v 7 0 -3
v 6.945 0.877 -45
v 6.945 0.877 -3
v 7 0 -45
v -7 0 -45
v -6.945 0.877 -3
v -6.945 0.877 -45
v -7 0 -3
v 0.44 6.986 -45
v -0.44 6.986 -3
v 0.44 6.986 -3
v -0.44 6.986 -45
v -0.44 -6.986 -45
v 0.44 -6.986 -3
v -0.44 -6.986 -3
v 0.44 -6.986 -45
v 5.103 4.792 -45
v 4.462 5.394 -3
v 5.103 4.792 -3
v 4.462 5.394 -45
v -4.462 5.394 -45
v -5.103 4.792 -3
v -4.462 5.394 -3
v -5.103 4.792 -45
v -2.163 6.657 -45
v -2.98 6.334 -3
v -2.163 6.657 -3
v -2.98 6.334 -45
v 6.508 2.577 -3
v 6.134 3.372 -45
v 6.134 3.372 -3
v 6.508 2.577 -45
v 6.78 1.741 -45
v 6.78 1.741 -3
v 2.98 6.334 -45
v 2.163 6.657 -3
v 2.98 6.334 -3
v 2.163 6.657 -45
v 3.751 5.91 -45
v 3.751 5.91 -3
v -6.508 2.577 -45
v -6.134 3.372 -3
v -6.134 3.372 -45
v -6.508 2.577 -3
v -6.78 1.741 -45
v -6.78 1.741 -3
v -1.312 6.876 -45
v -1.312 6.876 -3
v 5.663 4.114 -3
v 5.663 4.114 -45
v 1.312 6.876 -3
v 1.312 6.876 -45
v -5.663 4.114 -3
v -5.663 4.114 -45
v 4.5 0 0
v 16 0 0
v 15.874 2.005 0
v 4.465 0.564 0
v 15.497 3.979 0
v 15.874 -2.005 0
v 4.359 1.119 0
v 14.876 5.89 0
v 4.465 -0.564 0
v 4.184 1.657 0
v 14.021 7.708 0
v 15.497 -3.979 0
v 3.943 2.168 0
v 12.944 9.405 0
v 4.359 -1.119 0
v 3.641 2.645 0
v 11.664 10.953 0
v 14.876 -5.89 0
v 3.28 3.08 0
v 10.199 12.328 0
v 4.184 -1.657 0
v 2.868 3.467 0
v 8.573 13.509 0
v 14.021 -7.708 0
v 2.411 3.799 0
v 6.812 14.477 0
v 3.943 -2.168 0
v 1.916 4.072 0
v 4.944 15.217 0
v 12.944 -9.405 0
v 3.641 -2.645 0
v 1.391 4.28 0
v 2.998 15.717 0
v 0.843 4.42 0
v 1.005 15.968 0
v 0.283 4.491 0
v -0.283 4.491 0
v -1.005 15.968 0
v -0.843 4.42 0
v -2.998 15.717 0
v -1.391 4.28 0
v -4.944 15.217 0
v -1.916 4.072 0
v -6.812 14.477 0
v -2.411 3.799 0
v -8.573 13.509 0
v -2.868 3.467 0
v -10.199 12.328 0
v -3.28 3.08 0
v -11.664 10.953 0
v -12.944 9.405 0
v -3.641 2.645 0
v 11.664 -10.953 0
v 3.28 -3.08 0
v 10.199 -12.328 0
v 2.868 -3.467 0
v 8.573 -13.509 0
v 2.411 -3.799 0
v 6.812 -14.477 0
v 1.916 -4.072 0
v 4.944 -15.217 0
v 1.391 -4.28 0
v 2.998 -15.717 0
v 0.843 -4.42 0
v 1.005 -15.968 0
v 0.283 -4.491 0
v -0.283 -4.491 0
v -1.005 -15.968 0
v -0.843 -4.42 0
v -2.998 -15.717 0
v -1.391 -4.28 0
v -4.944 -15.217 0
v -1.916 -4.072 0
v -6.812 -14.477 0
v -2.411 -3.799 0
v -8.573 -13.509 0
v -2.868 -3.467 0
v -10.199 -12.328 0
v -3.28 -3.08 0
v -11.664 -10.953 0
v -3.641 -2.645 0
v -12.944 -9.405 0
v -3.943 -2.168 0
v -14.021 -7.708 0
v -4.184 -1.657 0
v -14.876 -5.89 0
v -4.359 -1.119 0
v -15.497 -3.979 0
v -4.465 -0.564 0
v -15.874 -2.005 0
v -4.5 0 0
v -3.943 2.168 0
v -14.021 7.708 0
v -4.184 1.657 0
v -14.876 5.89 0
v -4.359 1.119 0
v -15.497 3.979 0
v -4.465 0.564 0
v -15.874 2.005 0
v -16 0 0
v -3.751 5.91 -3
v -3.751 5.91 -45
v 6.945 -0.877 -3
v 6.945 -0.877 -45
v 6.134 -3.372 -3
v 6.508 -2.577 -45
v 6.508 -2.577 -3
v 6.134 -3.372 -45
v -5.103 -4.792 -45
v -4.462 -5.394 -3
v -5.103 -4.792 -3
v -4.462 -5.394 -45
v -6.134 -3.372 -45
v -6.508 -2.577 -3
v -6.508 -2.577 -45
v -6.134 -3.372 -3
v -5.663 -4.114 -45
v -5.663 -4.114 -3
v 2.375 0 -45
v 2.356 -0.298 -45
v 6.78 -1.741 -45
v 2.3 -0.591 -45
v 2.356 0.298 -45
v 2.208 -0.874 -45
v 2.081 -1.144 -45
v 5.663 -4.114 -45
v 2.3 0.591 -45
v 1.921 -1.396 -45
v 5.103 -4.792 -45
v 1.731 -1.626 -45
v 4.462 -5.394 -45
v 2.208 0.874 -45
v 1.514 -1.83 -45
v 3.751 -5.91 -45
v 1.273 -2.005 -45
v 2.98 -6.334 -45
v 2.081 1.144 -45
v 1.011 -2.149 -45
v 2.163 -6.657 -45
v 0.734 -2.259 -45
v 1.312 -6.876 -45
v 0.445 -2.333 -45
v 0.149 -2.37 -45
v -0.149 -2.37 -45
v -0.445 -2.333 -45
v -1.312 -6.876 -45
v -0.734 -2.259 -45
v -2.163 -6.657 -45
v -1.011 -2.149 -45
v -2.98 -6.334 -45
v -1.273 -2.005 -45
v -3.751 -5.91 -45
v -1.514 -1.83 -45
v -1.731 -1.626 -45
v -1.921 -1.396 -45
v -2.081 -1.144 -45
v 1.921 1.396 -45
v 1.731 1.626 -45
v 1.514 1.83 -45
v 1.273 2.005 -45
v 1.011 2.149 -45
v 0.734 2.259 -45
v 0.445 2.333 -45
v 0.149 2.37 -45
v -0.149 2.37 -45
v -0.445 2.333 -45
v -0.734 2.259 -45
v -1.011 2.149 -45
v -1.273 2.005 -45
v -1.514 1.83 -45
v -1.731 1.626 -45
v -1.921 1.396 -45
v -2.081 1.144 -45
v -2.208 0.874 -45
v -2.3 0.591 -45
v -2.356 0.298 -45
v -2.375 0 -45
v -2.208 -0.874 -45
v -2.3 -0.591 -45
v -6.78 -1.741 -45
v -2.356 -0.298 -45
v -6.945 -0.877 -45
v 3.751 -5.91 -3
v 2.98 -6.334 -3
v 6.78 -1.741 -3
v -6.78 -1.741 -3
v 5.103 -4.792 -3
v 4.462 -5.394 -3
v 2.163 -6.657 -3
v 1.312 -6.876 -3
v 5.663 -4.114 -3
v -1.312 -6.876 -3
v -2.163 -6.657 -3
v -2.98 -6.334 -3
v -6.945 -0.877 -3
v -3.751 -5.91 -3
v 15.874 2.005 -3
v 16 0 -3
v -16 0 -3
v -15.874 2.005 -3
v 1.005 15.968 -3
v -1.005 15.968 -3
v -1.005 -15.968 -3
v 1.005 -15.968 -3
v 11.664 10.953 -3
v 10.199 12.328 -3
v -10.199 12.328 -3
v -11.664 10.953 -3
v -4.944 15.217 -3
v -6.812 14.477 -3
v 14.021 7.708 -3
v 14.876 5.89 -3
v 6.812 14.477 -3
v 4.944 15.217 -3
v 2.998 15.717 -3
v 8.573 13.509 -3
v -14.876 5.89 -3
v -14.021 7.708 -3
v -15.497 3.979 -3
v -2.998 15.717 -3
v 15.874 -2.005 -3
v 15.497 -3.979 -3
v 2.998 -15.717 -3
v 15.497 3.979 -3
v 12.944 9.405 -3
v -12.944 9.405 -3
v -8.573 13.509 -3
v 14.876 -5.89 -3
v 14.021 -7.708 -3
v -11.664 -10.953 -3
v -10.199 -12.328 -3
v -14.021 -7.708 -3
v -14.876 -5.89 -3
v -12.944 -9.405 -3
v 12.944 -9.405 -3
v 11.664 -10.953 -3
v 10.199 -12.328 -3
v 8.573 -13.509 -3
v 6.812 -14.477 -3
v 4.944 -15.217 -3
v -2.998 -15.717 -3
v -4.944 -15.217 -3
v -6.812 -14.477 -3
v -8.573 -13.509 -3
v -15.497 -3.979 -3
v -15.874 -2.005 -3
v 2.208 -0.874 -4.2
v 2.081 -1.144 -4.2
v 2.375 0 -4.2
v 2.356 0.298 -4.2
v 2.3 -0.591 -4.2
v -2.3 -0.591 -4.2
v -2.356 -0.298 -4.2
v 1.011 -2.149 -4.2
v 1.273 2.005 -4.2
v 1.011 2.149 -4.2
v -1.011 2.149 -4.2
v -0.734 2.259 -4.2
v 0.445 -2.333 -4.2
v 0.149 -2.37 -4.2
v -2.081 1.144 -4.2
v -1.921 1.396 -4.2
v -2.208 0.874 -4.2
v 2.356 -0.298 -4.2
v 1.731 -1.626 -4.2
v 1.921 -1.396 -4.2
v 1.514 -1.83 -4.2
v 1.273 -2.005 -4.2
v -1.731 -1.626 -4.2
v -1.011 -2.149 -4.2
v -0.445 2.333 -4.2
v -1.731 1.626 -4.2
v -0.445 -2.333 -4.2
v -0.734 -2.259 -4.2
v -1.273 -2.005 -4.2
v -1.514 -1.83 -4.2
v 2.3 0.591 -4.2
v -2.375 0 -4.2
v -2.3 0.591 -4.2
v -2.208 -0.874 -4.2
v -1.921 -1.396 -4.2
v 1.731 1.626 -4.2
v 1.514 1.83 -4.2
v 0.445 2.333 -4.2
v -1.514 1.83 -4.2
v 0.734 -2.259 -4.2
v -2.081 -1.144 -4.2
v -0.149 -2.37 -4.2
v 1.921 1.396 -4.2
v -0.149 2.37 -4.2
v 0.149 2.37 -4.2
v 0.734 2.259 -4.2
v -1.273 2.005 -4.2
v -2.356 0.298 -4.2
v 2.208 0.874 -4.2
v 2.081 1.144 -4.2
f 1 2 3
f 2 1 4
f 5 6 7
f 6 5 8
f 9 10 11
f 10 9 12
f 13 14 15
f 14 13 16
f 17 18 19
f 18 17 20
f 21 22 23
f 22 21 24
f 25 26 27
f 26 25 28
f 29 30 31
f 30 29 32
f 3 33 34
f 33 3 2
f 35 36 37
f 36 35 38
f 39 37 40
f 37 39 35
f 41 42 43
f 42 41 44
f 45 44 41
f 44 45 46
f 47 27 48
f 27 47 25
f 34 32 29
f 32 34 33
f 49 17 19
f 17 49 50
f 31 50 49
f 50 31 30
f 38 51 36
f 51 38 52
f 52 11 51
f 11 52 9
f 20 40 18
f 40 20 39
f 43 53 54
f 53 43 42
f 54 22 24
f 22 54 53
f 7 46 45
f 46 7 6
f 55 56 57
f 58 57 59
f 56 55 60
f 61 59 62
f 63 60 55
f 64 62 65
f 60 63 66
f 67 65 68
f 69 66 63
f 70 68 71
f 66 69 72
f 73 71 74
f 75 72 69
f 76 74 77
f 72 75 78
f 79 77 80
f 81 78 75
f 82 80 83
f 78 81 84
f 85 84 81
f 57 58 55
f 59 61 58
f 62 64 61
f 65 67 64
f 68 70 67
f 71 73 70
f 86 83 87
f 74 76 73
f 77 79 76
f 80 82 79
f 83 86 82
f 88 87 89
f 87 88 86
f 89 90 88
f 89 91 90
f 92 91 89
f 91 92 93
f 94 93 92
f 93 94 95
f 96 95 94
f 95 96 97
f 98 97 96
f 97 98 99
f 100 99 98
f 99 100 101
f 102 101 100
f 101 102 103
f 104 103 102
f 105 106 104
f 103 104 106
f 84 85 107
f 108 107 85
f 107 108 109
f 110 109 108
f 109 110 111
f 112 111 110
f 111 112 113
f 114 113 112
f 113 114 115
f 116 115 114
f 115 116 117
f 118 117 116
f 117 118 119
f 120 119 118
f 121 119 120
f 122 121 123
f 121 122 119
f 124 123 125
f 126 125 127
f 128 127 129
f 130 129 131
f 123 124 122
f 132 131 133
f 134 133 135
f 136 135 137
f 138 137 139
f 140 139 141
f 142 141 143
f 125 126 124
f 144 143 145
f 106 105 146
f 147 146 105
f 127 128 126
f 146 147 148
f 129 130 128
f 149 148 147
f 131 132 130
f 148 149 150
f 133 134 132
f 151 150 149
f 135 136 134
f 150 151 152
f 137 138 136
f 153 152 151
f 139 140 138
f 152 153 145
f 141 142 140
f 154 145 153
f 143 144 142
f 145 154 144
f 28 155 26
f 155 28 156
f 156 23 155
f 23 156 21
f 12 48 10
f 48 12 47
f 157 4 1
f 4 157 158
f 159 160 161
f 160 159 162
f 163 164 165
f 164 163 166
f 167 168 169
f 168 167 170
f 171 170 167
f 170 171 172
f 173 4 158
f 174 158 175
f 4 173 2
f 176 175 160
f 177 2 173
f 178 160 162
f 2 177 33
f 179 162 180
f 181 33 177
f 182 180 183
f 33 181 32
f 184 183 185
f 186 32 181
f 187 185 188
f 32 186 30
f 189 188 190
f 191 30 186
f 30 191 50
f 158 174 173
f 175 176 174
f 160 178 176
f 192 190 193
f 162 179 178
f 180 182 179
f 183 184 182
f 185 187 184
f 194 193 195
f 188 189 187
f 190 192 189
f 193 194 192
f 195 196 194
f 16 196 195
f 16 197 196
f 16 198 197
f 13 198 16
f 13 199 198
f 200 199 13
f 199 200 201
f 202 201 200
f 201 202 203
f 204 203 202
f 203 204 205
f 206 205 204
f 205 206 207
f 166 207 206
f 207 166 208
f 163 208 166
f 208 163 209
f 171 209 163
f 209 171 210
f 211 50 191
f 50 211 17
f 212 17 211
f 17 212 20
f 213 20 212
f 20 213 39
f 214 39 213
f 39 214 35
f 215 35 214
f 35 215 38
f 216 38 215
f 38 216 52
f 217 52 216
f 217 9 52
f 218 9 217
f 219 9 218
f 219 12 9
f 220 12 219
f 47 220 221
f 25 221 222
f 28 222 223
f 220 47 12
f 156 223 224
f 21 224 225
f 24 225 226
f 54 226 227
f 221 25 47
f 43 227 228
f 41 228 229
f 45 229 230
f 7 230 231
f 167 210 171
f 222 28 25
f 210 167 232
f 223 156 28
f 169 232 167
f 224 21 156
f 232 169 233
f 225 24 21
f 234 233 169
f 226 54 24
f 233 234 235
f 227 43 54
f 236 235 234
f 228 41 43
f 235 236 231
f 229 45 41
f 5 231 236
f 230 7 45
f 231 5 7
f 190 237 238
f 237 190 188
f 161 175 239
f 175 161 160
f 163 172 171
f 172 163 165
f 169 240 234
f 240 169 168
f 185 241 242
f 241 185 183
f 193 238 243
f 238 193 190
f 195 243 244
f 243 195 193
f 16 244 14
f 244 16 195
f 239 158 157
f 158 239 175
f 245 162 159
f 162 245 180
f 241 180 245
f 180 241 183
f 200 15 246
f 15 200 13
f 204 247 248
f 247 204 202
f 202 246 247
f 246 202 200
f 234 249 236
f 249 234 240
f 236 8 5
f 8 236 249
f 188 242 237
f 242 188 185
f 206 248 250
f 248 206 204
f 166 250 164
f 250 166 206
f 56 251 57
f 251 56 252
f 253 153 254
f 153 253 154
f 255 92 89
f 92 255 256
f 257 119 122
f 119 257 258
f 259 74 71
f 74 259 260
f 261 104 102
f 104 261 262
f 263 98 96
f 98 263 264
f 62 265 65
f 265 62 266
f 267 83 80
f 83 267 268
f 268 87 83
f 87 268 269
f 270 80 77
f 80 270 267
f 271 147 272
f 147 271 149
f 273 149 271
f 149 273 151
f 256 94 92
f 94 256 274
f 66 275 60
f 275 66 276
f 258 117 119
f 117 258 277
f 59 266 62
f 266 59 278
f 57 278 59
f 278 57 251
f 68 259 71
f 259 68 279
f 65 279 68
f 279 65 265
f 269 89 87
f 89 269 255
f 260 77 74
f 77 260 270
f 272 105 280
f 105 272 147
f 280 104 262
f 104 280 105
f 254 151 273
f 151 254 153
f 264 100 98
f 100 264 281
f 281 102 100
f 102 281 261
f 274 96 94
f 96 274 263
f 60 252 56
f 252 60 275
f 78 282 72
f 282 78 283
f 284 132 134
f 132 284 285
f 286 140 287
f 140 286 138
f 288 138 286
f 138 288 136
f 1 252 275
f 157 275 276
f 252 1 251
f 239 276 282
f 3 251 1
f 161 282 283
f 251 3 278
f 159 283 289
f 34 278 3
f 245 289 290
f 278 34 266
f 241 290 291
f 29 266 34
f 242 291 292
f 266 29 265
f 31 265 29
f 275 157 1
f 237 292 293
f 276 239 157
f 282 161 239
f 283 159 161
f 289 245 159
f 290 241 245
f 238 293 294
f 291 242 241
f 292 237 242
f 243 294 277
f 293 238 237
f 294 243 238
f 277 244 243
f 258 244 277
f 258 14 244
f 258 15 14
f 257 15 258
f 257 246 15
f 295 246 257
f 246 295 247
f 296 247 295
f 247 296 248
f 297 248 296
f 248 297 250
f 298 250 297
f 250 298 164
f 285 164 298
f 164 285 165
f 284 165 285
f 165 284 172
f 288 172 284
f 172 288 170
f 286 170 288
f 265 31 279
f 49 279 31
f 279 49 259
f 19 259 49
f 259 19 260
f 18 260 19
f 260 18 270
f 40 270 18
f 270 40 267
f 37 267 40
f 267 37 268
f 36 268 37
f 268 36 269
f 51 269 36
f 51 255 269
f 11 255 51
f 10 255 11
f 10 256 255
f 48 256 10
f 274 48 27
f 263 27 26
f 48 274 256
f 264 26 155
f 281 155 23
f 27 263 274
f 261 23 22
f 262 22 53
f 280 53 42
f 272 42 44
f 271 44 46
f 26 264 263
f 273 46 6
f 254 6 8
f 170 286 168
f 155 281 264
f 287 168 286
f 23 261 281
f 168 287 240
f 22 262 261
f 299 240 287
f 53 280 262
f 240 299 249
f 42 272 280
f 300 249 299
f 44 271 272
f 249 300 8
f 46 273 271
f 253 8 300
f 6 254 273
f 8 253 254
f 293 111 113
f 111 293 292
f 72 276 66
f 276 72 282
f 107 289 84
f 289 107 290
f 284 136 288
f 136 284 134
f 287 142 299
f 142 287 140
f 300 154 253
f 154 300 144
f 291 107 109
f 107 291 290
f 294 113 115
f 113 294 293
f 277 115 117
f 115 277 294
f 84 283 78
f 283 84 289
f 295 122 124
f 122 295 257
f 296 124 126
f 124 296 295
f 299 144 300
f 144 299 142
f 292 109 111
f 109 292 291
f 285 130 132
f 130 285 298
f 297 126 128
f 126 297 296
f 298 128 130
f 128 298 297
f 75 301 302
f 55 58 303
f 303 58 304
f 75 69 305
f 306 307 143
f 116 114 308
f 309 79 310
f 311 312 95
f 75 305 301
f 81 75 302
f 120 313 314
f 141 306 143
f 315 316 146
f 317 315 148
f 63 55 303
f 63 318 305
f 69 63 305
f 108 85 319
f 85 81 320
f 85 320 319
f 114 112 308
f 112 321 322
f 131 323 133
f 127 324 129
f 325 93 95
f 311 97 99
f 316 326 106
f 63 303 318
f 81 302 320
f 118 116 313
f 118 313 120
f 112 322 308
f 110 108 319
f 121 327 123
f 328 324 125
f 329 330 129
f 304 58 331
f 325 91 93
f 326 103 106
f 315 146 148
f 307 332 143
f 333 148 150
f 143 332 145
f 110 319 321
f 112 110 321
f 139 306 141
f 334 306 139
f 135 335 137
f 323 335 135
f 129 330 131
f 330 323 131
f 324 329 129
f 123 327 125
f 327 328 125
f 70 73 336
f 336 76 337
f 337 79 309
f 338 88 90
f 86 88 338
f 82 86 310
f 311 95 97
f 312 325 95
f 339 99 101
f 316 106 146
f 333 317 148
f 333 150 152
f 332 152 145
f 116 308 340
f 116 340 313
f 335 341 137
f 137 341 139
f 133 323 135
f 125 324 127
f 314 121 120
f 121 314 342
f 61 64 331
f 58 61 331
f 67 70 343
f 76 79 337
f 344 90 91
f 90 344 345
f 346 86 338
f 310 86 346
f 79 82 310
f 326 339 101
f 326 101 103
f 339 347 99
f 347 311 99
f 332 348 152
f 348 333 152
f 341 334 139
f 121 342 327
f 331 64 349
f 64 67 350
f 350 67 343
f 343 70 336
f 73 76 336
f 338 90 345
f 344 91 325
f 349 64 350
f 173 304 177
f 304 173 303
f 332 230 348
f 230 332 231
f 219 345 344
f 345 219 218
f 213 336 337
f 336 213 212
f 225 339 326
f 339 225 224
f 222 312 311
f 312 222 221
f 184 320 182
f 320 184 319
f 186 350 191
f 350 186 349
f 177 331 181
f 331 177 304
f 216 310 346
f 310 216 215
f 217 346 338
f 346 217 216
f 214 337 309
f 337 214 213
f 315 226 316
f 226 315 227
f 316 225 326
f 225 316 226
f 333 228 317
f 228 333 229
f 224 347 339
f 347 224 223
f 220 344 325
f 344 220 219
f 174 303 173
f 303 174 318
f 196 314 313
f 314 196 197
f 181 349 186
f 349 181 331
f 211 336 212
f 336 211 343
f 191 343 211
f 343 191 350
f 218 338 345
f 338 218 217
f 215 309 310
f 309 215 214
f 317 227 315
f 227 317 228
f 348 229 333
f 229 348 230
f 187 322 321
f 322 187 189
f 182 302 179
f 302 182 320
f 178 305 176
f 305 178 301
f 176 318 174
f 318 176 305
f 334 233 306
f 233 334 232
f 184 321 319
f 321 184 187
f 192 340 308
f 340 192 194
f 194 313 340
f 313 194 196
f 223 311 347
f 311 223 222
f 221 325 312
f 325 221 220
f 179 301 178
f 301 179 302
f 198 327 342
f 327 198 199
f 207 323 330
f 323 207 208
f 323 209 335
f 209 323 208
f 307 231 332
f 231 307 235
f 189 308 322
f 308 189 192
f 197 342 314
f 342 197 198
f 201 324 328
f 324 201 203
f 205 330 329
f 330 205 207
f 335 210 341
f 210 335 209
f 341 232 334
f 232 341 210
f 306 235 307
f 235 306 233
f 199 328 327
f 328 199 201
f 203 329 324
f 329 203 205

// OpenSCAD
$fn = 50;


difference() {
	union() {
		translate(v = [0, 0, -45.0000000000]) {
			cylinder(h = 45, r = 7.0000000000);
		}
		translate(v = [0, 0, -3.0000000000]) {
			cylinder(h = 3, r = 16.0000000000);
		}
	}
	union() {
		translate(v = [0, 0, 0]) {
			rotate(a = [0, 0, 0]) {
				difference() {
					union() {
						#translate(v = [0, 0, -45.0000000000]) {
							cylinder(h = 45, r = 2.2500000000);
						}
						#translate(v = [0, 0, -4.2000000000]) {
							cylinder(h = 4.2000000000, r = 7.0000000000, r1 = 2.3750000000, r2 = 4.5000000000);
						}
						#translate(v = [0, 0, -45.0000000000]) {
							cylinder(h = 45, r = 2.3750000000);
						}
						#translate(v = [0, 0, -45.0000000000]) {
							cylinder(h = 45, r = 2.2500000000);
						}
					}
					union();
				}
			}
		}
	}
}
